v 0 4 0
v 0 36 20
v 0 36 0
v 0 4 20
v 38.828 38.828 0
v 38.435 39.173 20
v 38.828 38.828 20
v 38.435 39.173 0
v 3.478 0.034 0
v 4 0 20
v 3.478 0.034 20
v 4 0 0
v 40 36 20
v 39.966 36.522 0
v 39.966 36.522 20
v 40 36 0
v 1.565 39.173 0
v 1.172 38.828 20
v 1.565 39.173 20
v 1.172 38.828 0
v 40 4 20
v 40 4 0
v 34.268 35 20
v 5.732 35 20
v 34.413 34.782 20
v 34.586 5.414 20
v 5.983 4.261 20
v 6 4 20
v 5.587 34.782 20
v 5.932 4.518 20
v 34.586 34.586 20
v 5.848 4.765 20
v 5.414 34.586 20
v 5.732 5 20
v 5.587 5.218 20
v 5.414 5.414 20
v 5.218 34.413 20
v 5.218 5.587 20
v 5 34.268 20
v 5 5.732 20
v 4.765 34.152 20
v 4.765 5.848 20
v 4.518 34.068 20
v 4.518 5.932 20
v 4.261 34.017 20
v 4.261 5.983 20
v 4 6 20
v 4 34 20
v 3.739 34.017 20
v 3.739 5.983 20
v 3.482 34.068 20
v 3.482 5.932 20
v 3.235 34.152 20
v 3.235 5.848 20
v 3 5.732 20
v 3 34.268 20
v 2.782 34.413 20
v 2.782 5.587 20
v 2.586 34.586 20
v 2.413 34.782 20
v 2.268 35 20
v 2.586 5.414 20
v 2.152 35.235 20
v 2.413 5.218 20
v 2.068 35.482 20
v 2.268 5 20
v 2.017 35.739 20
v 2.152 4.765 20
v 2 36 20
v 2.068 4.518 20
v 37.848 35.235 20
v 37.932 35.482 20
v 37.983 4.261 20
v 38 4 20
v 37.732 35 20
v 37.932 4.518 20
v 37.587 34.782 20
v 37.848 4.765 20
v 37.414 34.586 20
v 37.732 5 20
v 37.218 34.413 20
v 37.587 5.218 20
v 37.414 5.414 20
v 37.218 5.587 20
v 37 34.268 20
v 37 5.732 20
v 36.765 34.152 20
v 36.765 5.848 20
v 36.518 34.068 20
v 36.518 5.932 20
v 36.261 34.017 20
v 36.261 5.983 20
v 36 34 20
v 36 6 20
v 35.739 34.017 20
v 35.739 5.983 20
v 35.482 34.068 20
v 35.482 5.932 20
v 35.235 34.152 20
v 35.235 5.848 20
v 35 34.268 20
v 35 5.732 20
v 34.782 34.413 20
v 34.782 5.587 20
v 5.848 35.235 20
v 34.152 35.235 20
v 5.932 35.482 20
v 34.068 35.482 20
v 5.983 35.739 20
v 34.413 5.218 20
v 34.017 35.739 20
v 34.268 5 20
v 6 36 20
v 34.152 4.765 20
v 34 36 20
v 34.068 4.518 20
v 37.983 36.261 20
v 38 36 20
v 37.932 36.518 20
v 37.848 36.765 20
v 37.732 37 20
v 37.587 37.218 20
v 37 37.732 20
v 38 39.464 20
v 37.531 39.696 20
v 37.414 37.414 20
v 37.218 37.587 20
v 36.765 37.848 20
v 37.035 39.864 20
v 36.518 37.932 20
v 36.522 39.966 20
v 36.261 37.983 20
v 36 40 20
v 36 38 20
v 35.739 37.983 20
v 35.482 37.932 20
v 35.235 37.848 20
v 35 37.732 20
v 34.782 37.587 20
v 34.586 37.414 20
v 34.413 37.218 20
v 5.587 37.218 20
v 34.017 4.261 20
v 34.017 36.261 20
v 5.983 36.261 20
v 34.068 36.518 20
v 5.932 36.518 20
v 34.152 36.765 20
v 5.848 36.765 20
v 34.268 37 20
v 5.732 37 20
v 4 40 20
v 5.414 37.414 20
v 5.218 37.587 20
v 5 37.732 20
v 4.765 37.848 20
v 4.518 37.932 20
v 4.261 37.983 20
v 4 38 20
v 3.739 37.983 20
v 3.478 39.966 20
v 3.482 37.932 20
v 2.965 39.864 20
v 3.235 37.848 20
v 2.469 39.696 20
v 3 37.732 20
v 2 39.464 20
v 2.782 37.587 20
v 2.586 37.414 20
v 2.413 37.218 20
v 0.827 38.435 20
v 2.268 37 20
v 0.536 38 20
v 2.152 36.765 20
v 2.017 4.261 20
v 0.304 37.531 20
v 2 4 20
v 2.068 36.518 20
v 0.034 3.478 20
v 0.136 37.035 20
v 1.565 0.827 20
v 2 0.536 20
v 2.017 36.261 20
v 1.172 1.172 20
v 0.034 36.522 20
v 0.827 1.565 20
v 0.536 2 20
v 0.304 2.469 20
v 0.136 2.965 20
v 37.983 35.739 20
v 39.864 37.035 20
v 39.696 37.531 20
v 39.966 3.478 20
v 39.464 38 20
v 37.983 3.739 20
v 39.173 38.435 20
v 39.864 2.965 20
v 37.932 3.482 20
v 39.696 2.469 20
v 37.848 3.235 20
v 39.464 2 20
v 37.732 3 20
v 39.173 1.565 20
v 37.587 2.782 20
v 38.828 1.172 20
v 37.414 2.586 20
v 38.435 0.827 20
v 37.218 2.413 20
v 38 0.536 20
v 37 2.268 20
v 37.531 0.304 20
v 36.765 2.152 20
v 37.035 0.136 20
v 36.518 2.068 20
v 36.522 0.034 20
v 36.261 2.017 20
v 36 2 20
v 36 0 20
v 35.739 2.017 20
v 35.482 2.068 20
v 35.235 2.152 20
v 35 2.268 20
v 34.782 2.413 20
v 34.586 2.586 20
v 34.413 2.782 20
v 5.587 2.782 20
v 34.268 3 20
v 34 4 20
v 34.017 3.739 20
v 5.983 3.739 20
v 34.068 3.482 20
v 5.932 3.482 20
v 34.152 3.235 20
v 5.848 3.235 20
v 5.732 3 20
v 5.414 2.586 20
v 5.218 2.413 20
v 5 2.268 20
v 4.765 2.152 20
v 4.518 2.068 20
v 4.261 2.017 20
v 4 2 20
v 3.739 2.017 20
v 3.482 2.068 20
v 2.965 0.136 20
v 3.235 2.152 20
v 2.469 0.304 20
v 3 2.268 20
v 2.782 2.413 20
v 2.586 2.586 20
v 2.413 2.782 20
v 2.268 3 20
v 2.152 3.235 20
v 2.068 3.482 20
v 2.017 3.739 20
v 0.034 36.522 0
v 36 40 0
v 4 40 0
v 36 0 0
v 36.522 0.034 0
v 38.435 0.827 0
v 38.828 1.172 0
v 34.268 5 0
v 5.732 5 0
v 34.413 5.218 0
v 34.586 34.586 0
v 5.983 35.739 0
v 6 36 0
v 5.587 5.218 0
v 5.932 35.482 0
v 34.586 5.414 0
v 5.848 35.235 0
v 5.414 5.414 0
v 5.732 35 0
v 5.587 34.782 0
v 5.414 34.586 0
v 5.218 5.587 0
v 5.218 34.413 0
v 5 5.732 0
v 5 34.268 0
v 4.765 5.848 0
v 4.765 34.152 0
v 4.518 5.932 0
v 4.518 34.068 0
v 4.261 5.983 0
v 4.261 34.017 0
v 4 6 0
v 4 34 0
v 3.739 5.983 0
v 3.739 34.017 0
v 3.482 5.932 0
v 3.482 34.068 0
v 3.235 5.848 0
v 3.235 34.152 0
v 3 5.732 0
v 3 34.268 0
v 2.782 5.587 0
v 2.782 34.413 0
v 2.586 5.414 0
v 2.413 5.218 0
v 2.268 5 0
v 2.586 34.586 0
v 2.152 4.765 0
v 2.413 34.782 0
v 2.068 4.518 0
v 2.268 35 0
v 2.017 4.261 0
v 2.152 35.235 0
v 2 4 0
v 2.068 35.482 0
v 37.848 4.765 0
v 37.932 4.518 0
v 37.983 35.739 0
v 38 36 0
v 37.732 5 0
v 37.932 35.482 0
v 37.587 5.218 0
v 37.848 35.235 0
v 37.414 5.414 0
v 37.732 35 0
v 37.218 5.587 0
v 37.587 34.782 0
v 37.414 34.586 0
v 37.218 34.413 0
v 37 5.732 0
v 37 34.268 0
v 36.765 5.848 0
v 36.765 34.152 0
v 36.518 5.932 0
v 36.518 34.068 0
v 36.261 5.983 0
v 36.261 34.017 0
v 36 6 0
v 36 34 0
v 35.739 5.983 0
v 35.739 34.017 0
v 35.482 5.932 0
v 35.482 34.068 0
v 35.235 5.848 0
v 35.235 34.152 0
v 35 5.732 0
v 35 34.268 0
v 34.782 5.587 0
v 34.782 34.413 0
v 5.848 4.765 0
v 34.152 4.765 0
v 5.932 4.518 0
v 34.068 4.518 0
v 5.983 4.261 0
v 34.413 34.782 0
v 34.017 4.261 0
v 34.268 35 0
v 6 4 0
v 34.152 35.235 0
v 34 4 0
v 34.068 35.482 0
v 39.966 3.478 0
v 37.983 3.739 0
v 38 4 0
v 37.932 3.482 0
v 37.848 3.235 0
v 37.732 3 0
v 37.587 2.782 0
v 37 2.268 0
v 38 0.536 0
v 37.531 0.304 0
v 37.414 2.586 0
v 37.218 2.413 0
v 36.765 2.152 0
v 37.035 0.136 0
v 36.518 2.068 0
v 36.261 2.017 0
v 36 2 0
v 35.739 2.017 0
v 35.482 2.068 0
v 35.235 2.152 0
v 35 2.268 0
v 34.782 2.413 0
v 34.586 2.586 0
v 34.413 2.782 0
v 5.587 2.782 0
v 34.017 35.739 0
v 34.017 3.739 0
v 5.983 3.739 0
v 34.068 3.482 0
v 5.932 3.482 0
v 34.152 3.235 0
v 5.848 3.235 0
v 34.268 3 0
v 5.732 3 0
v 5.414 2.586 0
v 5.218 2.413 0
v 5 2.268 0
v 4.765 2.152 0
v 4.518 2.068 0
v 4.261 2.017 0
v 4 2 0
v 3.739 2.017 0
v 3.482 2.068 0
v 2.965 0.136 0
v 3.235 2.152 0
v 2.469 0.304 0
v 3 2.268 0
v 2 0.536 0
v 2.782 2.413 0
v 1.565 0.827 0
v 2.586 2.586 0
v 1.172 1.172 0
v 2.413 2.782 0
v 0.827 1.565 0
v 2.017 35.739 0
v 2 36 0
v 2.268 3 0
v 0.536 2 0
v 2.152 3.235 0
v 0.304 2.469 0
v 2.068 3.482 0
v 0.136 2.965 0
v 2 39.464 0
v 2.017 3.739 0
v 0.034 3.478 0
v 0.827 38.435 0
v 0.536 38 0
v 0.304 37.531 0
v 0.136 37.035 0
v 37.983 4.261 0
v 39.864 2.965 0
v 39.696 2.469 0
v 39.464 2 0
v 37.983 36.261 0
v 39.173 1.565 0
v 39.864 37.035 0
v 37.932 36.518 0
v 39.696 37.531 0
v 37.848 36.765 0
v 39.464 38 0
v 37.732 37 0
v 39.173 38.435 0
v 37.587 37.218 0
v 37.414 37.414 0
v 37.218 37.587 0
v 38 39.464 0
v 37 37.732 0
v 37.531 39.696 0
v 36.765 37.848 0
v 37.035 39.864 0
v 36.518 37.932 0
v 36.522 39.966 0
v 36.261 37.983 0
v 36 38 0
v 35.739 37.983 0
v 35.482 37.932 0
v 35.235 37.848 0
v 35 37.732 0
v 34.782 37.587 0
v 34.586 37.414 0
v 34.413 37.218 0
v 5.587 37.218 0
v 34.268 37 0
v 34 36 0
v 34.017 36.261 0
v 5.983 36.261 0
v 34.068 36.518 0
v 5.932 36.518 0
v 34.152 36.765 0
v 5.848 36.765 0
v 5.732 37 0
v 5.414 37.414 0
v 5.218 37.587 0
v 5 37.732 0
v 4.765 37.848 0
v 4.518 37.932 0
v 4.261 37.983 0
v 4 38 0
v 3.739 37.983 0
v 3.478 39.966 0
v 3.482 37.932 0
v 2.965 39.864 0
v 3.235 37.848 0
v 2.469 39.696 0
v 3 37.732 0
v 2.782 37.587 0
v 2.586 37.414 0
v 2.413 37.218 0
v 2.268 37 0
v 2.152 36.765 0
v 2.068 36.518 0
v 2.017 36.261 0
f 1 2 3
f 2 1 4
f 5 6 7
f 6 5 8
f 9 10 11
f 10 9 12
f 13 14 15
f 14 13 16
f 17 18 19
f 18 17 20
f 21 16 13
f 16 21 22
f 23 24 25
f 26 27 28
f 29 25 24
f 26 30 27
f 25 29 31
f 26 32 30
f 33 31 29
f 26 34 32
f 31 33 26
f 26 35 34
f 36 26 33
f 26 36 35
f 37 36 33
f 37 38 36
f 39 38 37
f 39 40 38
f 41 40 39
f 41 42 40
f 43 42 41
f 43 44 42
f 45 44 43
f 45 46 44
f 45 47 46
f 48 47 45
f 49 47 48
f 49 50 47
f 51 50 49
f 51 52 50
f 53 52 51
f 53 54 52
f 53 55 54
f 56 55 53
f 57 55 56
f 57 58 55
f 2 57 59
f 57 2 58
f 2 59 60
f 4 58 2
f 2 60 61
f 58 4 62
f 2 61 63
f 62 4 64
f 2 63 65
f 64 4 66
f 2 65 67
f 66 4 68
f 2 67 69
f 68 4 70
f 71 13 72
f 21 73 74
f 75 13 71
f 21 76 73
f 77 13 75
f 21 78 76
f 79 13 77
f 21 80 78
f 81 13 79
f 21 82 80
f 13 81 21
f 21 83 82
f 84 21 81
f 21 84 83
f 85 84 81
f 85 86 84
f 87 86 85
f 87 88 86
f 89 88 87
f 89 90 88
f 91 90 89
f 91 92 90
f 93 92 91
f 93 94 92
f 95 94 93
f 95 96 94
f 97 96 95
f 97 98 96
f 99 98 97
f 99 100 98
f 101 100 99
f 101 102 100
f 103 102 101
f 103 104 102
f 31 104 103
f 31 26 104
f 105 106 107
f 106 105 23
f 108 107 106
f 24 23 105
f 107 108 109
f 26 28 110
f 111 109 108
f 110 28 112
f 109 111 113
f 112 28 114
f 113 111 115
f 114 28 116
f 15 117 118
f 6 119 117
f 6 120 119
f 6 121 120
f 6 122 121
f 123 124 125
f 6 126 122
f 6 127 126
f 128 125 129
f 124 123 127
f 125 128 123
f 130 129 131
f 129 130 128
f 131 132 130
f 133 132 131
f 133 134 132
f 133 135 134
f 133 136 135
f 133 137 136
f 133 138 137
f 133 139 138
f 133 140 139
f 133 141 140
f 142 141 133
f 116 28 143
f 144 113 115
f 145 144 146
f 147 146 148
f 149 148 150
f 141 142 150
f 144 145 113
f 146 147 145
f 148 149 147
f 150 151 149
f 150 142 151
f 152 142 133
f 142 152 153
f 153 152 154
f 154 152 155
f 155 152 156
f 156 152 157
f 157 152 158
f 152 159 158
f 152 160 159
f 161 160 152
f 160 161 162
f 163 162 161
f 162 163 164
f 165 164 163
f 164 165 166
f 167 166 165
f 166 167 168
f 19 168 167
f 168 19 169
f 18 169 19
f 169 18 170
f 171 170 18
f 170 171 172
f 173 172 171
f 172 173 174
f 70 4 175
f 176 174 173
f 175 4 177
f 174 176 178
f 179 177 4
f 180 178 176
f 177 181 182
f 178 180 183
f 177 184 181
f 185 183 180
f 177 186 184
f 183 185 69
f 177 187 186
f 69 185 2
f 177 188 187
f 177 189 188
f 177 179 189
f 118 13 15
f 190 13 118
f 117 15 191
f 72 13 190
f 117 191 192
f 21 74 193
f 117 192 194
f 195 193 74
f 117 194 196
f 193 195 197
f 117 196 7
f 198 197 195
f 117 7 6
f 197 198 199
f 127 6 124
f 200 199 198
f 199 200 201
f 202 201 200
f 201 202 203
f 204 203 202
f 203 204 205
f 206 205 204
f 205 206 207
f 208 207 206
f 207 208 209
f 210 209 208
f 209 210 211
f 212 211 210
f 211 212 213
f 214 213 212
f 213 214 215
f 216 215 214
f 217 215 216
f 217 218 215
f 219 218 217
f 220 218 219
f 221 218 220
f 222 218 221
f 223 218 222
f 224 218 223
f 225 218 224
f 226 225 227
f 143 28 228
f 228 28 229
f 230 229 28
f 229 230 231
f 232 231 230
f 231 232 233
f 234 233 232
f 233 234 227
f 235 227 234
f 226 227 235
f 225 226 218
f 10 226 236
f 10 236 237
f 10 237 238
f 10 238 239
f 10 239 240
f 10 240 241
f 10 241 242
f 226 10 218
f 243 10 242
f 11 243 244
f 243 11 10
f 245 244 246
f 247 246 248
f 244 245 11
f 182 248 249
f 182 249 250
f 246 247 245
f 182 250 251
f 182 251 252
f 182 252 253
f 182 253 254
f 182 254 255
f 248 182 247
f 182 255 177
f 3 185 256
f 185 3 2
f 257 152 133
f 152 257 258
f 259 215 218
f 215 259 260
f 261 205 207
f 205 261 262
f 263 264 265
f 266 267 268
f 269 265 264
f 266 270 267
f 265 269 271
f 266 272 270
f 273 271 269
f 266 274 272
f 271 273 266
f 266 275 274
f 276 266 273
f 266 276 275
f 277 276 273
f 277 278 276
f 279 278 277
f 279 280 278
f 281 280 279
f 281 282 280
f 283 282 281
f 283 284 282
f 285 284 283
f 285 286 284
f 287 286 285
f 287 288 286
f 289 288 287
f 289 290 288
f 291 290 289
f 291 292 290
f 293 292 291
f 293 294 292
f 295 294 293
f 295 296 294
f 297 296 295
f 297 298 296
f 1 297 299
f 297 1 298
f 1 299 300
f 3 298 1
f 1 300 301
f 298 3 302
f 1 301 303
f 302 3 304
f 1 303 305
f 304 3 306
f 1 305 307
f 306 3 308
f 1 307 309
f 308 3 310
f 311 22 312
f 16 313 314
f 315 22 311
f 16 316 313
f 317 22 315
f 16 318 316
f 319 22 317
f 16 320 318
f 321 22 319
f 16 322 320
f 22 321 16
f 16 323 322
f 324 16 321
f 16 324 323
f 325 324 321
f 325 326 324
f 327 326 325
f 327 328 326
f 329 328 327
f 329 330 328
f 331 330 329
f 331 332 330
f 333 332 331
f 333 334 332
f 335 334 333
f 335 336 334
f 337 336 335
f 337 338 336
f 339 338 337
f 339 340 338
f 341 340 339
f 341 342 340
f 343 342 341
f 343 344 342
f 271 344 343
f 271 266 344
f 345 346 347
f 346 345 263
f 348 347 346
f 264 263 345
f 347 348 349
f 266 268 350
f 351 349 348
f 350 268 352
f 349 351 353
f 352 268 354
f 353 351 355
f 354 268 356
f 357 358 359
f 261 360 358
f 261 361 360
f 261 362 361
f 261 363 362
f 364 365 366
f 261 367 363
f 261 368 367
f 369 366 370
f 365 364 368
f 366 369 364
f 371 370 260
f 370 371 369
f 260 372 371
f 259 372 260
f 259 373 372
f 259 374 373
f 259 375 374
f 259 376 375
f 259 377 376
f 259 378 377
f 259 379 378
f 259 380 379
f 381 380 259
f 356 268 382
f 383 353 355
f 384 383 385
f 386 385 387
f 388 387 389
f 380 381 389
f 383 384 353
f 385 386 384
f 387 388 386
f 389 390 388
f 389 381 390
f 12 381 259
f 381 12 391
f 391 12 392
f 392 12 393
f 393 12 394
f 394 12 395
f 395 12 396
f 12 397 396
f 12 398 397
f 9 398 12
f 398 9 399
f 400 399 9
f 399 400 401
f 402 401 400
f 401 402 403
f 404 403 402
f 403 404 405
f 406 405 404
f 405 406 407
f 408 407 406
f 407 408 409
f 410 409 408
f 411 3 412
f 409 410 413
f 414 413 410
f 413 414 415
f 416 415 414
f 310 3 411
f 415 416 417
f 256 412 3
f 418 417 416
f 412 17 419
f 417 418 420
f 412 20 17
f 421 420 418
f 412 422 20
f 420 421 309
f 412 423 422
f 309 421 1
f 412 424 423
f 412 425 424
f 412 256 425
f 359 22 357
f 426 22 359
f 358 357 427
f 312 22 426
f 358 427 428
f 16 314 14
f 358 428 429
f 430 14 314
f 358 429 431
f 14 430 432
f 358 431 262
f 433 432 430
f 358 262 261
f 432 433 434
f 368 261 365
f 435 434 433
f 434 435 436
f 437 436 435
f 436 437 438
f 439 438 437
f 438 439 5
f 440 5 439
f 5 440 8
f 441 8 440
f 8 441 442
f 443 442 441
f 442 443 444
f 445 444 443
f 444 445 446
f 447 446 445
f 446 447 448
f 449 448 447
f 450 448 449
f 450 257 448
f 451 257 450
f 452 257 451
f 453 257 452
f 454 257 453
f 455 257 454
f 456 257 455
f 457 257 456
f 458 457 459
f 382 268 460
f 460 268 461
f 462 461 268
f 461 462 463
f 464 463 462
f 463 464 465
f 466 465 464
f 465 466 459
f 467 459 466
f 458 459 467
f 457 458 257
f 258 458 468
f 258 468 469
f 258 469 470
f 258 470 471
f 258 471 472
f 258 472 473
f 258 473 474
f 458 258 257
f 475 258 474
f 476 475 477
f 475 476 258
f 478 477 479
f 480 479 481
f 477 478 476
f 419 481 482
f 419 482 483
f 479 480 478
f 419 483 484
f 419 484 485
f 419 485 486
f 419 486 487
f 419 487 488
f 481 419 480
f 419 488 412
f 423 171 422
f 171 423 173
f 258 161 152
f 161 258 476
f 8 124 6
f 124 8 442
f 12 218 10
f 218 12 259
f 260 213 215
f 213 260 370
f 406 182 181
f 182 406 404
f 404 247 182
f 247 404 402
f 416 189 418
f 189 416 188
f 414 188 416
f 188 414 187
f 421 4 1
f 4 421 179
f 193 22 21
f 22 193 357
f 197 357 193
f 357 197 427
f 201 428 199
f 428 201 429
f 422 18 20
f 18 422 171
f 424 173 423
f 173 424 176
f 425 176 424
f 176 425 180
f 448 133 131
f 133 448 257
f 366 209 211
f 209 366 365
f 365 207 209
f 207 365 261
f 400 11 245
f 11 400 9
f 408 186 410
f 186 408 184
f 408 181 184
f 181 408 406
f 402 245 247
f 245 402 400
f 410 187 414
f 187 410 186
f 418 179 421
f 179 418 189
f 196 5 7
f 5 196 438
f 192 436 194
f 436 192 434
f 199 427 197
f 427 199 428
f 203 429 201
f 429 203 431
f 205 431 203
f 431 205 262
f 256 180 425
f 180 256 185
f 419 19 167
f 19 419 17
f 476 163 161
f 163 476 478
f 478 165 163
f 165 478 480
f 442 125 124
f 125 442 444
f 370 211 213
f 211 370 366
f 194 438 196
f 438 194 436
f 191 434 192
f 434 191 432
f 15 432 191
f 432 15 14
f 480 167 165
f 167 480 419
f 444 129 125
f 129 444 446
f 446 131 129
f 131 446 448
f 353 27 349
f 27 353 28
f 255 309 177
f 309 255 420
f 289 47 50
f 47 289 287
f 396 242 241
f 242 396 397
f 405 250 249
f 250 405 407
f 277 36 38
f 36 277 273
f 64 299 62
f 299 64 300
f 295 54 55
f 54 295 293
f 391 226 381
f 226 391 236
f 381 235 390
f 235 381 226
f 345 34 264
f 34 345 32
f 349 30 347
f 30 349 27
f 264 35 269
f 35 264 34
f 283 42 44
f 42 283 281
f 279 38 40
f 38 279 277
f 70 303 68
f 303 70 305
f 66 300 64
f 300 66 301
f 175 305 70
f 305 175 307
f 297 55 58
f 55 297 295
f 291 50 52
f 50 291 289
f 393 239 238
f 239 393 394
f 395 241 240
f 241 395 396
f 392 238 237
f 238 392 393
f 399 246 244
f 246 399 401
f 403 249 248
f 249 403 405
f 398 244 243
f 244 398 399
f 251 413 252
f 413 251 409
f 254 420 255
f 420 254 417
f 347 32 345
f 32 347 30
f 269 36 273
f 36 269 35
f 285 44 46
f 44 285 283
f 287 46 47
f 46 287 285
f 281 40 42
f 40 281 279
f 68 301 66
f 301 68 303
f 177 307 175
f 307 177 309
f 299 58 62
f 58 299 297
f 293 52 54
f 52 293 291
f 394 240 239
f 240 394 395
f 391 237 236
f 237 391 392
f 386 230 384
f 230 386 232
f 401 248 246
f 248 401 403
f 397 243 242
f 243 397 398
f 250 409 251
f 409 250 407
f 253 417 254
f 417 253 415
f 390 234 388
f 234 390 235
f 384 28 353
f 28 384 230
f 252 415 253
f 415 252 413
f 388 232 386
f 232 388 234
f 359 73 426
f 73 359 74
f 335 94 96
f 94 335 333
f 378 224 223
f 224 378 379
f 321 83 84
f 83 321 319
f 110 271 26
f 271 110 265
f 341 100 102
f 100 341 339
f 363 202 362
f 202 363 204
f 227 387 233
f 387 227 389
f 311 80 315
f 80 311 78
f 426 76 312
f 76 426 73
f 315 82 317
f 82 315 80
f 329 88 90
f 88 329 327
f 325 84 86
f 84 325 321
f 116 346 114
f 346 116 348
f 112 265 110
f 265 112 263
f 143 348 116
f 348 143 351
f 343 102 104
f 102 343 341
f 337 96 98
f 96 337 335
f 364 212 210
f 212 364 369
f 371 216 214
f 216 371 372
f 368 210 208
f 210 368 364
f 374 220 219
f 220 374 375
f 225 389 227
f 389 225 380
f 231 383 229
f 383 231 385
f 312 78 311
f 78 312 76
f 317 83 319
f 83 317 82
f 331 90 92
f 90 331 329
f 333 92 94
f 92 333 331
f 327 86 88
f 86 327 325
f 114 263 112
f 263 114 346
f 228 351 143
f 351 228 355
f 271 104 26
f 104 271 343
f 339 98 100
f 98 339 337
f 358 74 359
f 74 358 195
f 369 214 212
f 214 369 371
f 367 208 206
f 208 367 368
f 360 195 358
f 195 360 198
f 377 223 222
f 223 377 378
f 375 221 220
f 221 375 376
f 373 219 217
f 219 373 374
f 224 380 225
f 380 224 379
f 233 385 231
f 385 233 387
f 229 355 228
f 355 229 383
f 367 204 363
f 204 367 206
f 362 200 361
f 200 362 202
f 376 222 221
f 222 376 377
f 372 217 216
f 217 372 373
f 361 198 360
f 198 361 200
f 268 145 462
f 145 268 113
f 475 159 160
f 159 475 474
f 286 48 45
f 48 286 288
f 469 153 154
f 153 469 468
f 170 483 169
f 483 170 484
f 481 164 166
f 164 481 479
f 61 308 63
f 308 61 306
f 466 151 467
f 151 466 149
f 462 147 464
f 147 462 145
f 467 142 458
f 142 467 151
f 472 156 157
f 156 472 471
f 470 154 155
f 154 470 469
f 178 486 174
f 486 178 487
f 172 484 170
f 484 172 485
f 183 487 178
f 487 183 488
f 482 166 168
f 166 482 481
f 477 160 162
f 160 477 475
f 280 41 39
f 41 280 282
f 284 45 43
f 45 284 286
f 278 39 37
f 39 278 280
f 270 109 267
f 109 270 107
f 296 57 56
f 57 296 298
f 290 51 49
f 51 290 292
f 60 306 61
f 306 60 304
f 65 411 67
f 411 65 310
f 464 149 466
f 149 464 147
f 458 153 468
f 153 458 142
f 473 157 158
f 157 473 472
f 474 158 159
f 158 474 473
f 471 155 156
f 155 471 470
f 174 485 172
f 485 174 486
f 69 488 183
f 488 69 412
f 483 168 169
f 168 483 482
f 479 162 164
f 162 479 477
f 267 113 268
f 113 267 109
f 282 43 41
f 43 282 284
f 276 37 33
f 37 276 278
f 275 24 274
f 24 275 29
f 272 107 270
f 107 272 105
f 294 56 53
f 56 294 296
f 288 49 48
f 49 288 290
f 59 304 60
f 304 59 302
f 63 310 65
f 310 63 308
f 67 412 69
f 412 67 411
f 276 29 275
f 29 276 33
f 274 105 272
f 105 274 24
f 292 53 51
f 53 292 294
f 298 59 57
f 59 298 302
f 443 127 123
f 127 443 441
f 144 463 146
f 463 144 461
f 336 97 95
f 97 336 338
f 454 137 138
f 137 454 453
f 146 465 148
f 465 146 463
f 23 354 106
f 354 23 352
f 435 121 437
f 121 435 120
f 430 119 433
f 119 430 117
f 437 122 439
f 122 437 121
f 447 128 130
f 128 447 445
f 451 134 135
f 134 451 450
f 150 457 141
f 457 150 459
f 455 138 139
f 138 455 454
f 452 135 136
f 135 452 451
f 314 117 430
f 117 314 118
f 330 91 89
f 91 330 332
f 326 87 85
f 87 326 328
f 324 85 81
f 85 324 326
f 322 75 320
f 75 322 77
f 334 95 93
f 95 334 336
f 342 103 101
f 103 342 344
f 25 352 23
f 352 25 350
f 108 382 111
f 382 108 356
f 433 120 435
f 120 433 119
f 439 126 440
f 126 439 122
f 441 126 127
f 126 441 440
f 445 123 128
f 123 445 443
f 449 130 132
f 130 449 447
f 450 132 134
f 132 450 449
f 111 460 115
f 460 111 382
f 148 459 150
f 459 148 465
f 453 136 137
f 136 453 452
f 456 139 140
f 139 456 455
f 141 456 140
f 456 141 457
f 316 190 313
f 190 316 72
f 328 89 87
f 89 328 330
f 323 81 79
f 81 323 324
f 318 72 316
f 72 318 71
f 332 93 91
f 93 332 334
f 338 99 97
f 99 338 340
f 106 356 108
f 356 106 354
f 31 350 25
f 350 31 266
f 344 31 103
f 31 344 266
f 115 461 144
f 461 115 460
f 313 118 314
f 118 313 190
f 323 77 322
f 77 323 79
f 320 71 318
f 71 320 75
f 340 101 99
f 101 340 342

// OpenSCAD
/**********************************************************************************************************************
 **
 ** parts/vitamins/electromechanic/fan_40_20.scad
 **
 ** This file renders a fan of 40x40 mm with a housing thickness of 20 mm.
 **
 **********************************************************************************************************************/

CORNER_RADIUS =  4.0;
SIDE_LENGTH   = 40.0;
DEPTH         = 20.0;

HOLE_DIAMETER =  4.0;
HOLE_OFFSET   =  4.0;

$fn = 48;
difference() {

	// the outer hull
	hull() {
		translate([CORNER_RADIUS, CORNER_RADIUS, 0])
			cylinder(r = CORNER_RADIUS, h = DEPTH);
		translate([SIDE_LENGTH - CORNER_RADIUS, CORNER_RADIUS, 0])
			cylinder(r = CORNER_RADIUS, h = DEPTH);
		translate([CORNER_RADIUS, SIDE_LENGTH - CORNER_RADIUS, 0])
			cylinder(r = CORNER_RADIUS, h = DEPTH);
		translate([SIDE_LENGTH - CORNER_RADIUS, SIDE_LENGTH - CORNER_RADIUS, 0])
			cylinder(r = CORNER_RADIUS, h = DEPTH);
	}

	// minus the screw holes
	translate([HOLE_OFFSET, HOLE_OFFSET, -1])
		cylinder(d = HOLE_DIAMETER, h = DEPTH + 2);
	translate([SIDE_LENGTH - HOLE_OFFSET, HOLE_OFFSET, -1])
		cylinder(d = HOLE_DIAMETER, h = DEPTH + 2);
	translate([HOLE_OFFSET, SIDE_LENGTH - HOLE_OFFSET, -1])
		cylinder(d = HOLE_DIAMETER, h = DEPTH + 2);
	translate([SIDE_LENGTH - HOLE_OFFSET, SIDE_LENGTH - HOLE_OFFSET, -1])
		cylinder(d = HOLE_DIAMETER, h = DEPTH + 2);


}
